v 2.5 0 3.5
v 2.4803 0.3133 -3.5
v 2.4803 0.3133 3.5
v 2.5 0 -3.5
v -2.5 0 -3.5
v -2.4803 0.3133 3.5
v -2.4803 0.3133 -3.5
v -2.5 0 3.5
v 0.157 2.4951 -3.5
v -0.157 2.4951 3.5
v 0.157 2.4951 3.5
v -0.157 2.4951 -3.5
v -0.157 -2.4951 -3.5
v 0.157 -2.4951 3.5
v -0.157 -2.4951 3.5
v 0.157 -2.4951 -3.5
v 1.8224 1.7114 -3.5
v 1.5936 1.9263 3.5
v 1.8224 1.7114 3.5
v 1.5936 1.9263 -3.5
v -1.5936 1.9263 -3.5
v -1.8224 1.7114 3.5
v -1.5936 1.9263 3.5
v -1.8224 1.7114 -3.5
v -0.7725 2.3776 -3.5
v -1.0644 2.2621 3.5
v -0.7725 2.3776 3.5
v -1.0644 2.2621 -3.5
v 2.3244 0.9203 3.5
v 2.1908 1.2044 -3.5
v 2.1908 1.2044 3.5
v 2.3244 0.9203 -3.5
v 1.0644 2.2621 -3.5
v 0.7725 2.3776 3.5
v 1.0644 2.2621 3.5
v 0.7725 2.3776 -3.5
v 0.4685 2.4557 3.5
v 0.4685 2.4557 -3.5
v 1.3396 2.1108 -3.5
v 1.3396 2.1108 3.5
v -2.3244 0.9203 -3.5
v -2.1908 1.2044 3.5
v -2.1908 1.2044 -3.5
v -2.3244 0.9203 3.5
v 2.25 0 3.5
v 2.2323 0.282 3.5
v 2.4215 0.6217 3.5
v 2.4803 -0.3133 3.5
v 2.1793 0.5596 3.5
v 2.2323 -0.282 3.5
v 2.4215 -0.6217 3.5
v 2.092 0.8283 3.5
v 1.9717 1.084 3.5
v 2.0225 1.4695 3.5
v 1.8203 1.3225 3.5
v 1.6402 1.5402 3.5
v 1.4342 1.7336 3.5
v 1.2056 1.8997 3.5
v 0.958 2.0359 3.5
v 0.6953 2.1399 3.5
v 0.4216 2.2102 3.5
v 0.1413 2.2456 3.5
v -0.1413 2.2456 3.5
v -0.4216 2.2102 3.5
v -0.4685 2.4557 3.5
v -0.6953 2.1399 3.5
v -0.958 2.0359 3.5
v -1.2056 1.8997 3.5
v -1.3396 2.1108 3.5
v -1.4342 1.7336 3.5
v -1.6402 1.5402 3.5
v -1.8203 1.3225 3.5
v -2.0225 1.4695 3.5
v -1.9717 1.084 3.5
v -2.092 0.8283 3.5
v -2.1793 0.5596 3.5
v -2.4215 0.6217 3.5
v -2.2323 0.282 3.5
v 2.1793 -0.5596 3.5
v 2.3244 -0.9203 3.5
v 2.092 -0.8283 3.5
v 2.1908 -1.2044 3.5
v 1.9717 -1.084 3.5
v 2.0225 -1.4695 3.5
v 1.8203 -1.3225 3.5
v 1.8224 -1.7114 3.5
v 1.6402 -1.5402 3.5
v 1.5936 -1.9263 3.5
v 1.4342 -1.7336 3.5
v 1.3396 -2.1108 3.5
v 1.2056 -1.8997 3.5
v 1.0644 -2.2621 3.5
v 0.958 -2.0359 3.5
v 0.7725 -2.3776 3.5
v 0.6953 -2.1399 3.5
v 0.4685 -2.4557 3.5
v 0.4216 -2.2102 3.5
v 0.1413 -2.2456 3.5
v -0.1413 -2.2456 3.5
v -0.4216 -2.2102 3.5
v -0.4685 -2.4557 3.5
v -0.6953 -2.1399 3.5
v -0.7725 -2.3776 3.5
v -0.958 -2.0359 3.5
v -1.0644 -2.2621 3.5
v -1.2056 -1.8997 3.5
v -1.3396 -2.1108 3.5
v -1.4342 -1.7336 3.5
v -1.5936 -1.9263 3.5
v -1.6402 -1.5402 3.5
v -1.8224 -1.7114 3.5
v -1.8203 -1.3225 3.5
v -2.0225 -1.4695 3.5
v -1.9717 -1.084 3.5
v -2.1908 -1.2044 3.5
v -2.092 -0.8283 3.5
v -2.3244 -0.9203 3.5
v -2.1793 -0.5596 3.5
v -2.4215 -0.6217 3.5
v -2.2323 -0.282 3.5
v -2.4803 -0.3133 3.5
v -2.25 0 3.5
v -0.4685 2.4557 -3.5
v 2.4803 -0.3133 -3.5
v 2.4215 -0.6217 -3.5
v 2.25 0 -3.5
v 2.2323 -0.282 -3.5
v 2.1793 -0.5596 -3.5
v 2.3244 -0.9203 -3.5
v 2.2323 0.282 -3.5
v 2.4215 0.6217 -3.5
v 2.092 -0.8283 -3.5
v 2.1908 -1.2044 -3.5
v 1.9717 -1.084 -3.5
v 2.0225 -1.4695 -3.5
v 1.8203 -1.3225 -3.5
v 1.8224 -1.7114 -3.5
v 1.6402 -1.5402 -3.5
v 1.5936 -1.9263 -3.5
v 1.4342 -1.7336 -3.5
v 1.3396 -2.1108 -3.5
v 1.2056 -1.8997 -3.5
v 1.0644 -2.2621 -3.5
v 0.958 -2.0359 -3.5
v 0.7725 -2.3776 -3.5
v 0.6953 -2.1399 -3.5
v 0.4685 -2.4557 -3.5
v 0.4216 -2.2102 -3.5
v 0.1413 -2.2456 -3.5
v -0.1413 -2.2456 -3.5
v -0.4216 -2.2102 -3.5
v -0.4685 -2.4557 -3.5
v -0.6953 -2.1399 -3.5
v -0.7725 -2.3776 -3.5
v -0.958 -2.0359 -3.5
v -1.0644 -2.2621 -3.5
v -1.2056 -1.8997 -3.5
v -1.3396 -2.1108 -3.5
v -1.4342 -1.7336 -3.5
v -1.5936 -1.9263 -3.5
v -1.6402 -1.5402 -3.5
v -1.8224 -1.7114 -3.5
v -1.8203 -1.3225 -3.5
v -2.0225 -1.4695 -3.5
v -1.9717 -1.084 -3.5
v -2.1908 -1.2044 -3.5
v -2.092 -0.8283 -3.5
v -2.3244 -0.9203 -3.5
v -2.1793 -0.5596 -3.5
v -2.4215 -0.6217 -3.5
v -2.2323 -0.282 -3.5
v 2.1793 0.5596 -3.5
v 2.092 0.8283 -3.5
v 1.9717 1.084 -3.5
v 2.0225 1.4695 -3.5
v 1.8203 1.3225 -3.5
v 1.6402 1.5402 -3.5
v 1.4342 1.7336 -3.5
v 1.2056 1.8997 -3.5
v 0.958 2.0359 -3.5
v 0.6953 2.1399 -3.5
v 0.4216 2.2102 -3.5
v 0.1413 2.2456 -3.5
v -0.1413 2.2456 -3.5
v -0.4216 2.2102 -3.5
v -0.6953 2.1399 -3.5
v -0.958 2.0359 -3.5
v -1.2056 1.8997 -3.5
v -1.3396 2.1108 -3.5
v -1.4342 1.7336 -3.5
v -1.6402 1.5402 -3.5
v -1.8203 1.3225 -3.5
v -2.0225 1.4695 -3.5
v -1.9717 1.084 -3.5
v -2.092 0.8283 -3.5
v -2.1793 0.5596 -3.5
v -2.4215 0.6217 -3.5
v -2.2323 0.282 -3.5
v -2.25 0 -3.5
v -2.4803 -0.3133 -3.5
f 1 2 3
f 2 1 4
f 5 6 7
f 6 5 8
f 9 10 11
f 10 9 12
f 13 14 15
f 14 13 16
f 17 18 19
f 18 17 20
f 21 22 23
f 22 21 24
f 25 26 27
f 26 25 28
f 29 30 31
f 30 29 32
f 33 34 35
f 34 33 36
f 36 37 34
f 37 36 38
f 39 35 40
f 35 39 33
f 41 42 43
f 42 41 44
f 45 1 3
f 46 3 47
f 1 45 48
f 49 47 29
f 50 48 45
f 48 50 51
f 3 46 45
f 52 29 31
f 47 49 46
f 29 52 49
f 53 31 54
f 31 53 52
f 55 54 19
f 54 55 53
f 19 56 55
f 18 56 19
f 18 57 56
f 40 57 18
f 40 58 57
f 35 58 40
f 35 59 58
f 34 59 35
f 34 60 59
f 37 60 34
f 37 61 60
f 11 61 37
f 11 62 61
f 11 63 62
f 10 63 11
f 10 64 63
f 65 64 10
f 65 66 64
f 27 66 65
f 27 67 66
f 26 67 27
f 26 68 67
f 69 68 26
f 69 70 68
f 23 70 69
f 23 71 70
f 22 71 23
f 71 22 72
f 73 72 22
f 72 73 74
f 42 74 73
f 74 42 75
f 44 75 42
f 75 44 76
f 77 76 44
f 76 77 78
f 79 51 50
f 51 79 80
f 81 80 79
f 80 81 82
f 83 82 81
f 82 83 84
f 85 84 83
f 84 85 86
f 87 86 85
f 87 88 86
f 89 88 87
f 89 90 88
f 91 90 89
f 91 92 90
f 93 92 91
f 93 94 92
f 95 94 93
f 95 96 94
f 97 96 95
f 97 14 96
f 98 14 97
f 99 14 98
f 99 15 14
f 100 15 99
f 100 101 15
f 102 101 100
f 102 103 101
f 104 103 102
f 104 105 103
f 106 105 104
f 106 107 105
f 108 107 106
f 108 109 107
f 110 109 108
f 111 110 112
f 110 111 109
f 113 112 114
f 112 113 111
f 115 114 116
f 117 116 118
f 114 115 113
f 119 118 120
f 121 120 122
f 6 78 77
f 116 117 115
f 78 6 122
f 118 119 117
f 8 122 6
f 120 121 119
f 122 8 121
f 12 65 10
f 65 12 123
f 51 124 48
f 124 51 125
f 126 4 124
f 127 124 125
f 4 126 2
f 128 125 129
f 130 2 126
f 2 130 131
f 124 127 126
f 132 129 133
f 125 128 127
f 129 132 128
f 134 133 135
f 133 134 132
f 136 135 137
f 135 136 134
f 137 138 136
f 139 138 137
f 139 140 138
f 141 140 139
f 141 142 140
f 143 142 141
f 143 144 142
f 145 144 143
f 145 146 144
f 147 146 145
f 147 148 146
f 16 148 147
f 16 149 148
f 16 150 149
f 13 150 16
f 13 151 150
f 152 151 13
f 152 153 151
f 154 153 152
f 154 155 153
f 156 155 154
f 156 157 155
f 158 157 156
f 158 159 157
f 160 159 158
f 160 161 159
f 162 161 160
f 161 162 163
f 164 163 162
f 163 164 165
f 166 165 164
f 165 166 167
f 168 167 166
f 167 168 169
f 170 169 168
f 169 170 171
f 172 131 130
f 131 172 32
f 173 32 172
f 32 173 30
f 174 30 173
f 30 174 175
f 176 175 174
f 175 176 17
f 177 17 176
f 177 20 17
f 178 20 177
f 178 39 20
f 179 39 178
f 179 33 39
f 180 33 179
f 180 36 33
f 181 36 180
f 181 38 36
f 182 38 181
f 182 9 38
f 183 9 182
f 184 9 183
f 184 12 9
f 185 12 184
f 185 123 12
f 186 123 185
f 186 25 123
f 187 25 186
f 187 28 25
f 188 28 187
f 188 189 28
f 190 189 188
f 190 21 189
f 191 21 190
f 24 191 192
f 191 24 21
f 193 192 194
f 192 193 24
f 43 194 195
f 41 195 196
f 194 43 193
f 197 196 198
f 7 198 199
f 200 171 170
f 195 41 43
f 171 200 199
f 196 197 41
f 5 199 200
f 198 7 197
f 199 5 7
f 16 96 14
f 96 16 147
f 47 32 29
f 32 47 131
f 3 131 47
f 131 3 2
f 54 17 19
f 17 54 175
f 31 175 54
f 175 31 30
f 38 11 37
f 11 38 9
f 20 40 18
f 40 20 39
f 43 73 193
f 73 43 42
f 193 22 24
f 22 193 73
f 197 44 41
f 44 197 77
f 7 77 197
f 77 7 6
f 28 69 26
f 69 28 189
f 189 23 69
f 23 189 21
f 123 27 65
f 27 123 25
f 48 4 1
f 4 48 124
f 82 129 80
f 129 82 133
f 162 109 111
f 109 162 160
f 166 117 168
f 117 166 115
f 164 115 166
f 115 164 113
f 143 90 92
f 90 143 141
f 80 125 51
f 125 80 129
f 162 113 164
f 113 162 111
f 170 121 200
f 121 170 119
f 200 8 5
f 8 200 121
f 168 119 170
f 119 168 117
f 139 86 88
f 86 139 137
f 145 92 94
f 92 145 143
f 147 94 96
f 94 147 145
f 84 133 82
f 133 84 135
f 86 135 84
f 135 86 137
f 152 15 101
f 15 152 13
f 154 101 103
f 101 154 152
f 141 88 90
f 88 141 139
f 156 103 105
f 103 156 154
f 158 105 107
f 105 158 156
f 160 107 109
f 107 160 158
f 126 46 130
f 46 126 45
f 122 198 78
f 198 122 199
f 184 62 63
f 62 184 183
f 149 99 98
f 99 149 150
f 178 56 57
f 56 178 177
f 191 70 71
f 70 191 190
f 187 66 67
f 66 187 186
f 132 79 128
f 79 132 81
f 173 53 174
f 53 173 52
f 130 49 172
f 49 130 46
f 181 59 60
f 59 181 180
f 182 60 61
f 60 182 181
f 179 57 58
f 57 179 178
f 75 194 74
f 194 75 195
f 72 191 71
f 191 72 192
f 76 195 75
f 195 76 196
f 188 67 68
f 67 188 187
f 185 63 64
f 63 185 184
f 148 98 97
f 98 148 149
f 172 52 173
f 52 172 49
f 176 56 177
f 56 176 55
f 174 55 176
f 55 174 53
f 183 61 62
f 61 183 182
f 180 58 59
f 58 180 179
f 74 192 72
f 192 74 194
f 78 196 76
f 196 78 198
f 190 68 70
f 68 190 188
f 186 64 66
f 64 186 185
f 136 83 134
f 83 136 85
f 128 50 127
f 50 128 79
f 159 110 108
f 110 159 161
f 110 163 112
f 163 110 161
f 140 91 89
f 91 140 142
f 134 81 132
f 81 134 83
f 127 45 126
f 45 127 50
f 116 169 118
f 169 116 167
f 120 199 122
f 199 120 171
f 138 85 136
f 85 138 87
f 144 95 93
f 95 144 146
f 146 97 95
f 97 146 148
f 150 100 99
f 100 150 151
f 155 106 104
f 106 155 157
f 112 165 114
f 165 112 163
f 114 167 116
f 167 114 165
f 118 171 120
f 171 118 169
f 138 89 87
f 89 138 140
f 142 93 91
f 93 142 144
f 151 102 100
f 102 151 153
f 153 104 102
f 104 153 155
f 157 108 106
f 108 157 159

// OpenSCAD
$fn = 50;


difference() {
	union() {
		translate(v = [0, 0, -3.5000000000]) {
			cylinder(h = 7, r = 2.5000000000);
		}
	}
	union() {
		translate(v = [0, 0, -100.0000000000]) {
			cylinder(h = 200, r = 2.2500000000);
		}
	}
}
